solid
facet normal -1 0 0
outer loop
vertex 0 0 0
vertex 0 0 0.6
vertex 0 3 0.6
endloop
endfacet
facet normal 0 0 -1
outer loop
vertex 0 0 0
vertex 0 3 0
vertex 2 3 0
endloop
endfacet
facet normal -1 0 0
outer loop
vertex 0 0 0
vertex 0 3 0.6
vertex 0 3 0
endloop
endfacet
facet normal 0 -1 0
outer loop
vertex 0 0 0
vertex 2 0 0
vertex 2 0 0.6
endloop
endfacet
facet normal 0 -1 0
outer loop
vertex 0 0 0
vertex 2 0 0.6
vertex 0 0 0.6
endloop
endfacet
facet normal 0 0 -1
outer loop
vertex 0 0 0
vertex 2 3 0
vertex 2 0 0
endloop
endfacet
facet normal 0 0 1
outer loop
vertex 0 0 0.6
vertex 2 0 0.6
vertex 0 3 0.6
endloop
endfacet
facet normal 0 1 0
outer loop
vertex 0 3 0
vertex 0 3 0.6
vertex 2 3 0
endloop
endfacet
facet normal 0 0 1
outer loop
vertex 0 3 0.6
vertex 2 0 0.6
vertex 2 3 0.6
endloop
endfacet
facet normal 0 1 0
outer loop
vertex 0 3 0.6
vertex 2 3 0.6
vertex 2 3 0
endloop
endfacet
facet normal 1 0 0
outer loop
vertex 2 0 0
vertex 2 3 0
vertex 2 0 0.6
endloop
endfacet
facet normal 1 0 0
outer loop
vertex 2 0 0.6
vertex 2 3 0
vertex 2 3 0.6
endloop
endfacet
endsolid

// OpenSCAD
/* Warning, this is a very basic generator with a lot of approximation 
input data : [UDFN, QTB, 2x3x0.6mm, 8, , C, C04-21355C]
generated by com.zoubworld.electronics.cad.model3d.Basic
Date : Sun Feb 15 10:50:49 CET 2026
*/

//body
color("black")
translate([0,0,0])
cube([2.0,3.0,0.6], center=false);
